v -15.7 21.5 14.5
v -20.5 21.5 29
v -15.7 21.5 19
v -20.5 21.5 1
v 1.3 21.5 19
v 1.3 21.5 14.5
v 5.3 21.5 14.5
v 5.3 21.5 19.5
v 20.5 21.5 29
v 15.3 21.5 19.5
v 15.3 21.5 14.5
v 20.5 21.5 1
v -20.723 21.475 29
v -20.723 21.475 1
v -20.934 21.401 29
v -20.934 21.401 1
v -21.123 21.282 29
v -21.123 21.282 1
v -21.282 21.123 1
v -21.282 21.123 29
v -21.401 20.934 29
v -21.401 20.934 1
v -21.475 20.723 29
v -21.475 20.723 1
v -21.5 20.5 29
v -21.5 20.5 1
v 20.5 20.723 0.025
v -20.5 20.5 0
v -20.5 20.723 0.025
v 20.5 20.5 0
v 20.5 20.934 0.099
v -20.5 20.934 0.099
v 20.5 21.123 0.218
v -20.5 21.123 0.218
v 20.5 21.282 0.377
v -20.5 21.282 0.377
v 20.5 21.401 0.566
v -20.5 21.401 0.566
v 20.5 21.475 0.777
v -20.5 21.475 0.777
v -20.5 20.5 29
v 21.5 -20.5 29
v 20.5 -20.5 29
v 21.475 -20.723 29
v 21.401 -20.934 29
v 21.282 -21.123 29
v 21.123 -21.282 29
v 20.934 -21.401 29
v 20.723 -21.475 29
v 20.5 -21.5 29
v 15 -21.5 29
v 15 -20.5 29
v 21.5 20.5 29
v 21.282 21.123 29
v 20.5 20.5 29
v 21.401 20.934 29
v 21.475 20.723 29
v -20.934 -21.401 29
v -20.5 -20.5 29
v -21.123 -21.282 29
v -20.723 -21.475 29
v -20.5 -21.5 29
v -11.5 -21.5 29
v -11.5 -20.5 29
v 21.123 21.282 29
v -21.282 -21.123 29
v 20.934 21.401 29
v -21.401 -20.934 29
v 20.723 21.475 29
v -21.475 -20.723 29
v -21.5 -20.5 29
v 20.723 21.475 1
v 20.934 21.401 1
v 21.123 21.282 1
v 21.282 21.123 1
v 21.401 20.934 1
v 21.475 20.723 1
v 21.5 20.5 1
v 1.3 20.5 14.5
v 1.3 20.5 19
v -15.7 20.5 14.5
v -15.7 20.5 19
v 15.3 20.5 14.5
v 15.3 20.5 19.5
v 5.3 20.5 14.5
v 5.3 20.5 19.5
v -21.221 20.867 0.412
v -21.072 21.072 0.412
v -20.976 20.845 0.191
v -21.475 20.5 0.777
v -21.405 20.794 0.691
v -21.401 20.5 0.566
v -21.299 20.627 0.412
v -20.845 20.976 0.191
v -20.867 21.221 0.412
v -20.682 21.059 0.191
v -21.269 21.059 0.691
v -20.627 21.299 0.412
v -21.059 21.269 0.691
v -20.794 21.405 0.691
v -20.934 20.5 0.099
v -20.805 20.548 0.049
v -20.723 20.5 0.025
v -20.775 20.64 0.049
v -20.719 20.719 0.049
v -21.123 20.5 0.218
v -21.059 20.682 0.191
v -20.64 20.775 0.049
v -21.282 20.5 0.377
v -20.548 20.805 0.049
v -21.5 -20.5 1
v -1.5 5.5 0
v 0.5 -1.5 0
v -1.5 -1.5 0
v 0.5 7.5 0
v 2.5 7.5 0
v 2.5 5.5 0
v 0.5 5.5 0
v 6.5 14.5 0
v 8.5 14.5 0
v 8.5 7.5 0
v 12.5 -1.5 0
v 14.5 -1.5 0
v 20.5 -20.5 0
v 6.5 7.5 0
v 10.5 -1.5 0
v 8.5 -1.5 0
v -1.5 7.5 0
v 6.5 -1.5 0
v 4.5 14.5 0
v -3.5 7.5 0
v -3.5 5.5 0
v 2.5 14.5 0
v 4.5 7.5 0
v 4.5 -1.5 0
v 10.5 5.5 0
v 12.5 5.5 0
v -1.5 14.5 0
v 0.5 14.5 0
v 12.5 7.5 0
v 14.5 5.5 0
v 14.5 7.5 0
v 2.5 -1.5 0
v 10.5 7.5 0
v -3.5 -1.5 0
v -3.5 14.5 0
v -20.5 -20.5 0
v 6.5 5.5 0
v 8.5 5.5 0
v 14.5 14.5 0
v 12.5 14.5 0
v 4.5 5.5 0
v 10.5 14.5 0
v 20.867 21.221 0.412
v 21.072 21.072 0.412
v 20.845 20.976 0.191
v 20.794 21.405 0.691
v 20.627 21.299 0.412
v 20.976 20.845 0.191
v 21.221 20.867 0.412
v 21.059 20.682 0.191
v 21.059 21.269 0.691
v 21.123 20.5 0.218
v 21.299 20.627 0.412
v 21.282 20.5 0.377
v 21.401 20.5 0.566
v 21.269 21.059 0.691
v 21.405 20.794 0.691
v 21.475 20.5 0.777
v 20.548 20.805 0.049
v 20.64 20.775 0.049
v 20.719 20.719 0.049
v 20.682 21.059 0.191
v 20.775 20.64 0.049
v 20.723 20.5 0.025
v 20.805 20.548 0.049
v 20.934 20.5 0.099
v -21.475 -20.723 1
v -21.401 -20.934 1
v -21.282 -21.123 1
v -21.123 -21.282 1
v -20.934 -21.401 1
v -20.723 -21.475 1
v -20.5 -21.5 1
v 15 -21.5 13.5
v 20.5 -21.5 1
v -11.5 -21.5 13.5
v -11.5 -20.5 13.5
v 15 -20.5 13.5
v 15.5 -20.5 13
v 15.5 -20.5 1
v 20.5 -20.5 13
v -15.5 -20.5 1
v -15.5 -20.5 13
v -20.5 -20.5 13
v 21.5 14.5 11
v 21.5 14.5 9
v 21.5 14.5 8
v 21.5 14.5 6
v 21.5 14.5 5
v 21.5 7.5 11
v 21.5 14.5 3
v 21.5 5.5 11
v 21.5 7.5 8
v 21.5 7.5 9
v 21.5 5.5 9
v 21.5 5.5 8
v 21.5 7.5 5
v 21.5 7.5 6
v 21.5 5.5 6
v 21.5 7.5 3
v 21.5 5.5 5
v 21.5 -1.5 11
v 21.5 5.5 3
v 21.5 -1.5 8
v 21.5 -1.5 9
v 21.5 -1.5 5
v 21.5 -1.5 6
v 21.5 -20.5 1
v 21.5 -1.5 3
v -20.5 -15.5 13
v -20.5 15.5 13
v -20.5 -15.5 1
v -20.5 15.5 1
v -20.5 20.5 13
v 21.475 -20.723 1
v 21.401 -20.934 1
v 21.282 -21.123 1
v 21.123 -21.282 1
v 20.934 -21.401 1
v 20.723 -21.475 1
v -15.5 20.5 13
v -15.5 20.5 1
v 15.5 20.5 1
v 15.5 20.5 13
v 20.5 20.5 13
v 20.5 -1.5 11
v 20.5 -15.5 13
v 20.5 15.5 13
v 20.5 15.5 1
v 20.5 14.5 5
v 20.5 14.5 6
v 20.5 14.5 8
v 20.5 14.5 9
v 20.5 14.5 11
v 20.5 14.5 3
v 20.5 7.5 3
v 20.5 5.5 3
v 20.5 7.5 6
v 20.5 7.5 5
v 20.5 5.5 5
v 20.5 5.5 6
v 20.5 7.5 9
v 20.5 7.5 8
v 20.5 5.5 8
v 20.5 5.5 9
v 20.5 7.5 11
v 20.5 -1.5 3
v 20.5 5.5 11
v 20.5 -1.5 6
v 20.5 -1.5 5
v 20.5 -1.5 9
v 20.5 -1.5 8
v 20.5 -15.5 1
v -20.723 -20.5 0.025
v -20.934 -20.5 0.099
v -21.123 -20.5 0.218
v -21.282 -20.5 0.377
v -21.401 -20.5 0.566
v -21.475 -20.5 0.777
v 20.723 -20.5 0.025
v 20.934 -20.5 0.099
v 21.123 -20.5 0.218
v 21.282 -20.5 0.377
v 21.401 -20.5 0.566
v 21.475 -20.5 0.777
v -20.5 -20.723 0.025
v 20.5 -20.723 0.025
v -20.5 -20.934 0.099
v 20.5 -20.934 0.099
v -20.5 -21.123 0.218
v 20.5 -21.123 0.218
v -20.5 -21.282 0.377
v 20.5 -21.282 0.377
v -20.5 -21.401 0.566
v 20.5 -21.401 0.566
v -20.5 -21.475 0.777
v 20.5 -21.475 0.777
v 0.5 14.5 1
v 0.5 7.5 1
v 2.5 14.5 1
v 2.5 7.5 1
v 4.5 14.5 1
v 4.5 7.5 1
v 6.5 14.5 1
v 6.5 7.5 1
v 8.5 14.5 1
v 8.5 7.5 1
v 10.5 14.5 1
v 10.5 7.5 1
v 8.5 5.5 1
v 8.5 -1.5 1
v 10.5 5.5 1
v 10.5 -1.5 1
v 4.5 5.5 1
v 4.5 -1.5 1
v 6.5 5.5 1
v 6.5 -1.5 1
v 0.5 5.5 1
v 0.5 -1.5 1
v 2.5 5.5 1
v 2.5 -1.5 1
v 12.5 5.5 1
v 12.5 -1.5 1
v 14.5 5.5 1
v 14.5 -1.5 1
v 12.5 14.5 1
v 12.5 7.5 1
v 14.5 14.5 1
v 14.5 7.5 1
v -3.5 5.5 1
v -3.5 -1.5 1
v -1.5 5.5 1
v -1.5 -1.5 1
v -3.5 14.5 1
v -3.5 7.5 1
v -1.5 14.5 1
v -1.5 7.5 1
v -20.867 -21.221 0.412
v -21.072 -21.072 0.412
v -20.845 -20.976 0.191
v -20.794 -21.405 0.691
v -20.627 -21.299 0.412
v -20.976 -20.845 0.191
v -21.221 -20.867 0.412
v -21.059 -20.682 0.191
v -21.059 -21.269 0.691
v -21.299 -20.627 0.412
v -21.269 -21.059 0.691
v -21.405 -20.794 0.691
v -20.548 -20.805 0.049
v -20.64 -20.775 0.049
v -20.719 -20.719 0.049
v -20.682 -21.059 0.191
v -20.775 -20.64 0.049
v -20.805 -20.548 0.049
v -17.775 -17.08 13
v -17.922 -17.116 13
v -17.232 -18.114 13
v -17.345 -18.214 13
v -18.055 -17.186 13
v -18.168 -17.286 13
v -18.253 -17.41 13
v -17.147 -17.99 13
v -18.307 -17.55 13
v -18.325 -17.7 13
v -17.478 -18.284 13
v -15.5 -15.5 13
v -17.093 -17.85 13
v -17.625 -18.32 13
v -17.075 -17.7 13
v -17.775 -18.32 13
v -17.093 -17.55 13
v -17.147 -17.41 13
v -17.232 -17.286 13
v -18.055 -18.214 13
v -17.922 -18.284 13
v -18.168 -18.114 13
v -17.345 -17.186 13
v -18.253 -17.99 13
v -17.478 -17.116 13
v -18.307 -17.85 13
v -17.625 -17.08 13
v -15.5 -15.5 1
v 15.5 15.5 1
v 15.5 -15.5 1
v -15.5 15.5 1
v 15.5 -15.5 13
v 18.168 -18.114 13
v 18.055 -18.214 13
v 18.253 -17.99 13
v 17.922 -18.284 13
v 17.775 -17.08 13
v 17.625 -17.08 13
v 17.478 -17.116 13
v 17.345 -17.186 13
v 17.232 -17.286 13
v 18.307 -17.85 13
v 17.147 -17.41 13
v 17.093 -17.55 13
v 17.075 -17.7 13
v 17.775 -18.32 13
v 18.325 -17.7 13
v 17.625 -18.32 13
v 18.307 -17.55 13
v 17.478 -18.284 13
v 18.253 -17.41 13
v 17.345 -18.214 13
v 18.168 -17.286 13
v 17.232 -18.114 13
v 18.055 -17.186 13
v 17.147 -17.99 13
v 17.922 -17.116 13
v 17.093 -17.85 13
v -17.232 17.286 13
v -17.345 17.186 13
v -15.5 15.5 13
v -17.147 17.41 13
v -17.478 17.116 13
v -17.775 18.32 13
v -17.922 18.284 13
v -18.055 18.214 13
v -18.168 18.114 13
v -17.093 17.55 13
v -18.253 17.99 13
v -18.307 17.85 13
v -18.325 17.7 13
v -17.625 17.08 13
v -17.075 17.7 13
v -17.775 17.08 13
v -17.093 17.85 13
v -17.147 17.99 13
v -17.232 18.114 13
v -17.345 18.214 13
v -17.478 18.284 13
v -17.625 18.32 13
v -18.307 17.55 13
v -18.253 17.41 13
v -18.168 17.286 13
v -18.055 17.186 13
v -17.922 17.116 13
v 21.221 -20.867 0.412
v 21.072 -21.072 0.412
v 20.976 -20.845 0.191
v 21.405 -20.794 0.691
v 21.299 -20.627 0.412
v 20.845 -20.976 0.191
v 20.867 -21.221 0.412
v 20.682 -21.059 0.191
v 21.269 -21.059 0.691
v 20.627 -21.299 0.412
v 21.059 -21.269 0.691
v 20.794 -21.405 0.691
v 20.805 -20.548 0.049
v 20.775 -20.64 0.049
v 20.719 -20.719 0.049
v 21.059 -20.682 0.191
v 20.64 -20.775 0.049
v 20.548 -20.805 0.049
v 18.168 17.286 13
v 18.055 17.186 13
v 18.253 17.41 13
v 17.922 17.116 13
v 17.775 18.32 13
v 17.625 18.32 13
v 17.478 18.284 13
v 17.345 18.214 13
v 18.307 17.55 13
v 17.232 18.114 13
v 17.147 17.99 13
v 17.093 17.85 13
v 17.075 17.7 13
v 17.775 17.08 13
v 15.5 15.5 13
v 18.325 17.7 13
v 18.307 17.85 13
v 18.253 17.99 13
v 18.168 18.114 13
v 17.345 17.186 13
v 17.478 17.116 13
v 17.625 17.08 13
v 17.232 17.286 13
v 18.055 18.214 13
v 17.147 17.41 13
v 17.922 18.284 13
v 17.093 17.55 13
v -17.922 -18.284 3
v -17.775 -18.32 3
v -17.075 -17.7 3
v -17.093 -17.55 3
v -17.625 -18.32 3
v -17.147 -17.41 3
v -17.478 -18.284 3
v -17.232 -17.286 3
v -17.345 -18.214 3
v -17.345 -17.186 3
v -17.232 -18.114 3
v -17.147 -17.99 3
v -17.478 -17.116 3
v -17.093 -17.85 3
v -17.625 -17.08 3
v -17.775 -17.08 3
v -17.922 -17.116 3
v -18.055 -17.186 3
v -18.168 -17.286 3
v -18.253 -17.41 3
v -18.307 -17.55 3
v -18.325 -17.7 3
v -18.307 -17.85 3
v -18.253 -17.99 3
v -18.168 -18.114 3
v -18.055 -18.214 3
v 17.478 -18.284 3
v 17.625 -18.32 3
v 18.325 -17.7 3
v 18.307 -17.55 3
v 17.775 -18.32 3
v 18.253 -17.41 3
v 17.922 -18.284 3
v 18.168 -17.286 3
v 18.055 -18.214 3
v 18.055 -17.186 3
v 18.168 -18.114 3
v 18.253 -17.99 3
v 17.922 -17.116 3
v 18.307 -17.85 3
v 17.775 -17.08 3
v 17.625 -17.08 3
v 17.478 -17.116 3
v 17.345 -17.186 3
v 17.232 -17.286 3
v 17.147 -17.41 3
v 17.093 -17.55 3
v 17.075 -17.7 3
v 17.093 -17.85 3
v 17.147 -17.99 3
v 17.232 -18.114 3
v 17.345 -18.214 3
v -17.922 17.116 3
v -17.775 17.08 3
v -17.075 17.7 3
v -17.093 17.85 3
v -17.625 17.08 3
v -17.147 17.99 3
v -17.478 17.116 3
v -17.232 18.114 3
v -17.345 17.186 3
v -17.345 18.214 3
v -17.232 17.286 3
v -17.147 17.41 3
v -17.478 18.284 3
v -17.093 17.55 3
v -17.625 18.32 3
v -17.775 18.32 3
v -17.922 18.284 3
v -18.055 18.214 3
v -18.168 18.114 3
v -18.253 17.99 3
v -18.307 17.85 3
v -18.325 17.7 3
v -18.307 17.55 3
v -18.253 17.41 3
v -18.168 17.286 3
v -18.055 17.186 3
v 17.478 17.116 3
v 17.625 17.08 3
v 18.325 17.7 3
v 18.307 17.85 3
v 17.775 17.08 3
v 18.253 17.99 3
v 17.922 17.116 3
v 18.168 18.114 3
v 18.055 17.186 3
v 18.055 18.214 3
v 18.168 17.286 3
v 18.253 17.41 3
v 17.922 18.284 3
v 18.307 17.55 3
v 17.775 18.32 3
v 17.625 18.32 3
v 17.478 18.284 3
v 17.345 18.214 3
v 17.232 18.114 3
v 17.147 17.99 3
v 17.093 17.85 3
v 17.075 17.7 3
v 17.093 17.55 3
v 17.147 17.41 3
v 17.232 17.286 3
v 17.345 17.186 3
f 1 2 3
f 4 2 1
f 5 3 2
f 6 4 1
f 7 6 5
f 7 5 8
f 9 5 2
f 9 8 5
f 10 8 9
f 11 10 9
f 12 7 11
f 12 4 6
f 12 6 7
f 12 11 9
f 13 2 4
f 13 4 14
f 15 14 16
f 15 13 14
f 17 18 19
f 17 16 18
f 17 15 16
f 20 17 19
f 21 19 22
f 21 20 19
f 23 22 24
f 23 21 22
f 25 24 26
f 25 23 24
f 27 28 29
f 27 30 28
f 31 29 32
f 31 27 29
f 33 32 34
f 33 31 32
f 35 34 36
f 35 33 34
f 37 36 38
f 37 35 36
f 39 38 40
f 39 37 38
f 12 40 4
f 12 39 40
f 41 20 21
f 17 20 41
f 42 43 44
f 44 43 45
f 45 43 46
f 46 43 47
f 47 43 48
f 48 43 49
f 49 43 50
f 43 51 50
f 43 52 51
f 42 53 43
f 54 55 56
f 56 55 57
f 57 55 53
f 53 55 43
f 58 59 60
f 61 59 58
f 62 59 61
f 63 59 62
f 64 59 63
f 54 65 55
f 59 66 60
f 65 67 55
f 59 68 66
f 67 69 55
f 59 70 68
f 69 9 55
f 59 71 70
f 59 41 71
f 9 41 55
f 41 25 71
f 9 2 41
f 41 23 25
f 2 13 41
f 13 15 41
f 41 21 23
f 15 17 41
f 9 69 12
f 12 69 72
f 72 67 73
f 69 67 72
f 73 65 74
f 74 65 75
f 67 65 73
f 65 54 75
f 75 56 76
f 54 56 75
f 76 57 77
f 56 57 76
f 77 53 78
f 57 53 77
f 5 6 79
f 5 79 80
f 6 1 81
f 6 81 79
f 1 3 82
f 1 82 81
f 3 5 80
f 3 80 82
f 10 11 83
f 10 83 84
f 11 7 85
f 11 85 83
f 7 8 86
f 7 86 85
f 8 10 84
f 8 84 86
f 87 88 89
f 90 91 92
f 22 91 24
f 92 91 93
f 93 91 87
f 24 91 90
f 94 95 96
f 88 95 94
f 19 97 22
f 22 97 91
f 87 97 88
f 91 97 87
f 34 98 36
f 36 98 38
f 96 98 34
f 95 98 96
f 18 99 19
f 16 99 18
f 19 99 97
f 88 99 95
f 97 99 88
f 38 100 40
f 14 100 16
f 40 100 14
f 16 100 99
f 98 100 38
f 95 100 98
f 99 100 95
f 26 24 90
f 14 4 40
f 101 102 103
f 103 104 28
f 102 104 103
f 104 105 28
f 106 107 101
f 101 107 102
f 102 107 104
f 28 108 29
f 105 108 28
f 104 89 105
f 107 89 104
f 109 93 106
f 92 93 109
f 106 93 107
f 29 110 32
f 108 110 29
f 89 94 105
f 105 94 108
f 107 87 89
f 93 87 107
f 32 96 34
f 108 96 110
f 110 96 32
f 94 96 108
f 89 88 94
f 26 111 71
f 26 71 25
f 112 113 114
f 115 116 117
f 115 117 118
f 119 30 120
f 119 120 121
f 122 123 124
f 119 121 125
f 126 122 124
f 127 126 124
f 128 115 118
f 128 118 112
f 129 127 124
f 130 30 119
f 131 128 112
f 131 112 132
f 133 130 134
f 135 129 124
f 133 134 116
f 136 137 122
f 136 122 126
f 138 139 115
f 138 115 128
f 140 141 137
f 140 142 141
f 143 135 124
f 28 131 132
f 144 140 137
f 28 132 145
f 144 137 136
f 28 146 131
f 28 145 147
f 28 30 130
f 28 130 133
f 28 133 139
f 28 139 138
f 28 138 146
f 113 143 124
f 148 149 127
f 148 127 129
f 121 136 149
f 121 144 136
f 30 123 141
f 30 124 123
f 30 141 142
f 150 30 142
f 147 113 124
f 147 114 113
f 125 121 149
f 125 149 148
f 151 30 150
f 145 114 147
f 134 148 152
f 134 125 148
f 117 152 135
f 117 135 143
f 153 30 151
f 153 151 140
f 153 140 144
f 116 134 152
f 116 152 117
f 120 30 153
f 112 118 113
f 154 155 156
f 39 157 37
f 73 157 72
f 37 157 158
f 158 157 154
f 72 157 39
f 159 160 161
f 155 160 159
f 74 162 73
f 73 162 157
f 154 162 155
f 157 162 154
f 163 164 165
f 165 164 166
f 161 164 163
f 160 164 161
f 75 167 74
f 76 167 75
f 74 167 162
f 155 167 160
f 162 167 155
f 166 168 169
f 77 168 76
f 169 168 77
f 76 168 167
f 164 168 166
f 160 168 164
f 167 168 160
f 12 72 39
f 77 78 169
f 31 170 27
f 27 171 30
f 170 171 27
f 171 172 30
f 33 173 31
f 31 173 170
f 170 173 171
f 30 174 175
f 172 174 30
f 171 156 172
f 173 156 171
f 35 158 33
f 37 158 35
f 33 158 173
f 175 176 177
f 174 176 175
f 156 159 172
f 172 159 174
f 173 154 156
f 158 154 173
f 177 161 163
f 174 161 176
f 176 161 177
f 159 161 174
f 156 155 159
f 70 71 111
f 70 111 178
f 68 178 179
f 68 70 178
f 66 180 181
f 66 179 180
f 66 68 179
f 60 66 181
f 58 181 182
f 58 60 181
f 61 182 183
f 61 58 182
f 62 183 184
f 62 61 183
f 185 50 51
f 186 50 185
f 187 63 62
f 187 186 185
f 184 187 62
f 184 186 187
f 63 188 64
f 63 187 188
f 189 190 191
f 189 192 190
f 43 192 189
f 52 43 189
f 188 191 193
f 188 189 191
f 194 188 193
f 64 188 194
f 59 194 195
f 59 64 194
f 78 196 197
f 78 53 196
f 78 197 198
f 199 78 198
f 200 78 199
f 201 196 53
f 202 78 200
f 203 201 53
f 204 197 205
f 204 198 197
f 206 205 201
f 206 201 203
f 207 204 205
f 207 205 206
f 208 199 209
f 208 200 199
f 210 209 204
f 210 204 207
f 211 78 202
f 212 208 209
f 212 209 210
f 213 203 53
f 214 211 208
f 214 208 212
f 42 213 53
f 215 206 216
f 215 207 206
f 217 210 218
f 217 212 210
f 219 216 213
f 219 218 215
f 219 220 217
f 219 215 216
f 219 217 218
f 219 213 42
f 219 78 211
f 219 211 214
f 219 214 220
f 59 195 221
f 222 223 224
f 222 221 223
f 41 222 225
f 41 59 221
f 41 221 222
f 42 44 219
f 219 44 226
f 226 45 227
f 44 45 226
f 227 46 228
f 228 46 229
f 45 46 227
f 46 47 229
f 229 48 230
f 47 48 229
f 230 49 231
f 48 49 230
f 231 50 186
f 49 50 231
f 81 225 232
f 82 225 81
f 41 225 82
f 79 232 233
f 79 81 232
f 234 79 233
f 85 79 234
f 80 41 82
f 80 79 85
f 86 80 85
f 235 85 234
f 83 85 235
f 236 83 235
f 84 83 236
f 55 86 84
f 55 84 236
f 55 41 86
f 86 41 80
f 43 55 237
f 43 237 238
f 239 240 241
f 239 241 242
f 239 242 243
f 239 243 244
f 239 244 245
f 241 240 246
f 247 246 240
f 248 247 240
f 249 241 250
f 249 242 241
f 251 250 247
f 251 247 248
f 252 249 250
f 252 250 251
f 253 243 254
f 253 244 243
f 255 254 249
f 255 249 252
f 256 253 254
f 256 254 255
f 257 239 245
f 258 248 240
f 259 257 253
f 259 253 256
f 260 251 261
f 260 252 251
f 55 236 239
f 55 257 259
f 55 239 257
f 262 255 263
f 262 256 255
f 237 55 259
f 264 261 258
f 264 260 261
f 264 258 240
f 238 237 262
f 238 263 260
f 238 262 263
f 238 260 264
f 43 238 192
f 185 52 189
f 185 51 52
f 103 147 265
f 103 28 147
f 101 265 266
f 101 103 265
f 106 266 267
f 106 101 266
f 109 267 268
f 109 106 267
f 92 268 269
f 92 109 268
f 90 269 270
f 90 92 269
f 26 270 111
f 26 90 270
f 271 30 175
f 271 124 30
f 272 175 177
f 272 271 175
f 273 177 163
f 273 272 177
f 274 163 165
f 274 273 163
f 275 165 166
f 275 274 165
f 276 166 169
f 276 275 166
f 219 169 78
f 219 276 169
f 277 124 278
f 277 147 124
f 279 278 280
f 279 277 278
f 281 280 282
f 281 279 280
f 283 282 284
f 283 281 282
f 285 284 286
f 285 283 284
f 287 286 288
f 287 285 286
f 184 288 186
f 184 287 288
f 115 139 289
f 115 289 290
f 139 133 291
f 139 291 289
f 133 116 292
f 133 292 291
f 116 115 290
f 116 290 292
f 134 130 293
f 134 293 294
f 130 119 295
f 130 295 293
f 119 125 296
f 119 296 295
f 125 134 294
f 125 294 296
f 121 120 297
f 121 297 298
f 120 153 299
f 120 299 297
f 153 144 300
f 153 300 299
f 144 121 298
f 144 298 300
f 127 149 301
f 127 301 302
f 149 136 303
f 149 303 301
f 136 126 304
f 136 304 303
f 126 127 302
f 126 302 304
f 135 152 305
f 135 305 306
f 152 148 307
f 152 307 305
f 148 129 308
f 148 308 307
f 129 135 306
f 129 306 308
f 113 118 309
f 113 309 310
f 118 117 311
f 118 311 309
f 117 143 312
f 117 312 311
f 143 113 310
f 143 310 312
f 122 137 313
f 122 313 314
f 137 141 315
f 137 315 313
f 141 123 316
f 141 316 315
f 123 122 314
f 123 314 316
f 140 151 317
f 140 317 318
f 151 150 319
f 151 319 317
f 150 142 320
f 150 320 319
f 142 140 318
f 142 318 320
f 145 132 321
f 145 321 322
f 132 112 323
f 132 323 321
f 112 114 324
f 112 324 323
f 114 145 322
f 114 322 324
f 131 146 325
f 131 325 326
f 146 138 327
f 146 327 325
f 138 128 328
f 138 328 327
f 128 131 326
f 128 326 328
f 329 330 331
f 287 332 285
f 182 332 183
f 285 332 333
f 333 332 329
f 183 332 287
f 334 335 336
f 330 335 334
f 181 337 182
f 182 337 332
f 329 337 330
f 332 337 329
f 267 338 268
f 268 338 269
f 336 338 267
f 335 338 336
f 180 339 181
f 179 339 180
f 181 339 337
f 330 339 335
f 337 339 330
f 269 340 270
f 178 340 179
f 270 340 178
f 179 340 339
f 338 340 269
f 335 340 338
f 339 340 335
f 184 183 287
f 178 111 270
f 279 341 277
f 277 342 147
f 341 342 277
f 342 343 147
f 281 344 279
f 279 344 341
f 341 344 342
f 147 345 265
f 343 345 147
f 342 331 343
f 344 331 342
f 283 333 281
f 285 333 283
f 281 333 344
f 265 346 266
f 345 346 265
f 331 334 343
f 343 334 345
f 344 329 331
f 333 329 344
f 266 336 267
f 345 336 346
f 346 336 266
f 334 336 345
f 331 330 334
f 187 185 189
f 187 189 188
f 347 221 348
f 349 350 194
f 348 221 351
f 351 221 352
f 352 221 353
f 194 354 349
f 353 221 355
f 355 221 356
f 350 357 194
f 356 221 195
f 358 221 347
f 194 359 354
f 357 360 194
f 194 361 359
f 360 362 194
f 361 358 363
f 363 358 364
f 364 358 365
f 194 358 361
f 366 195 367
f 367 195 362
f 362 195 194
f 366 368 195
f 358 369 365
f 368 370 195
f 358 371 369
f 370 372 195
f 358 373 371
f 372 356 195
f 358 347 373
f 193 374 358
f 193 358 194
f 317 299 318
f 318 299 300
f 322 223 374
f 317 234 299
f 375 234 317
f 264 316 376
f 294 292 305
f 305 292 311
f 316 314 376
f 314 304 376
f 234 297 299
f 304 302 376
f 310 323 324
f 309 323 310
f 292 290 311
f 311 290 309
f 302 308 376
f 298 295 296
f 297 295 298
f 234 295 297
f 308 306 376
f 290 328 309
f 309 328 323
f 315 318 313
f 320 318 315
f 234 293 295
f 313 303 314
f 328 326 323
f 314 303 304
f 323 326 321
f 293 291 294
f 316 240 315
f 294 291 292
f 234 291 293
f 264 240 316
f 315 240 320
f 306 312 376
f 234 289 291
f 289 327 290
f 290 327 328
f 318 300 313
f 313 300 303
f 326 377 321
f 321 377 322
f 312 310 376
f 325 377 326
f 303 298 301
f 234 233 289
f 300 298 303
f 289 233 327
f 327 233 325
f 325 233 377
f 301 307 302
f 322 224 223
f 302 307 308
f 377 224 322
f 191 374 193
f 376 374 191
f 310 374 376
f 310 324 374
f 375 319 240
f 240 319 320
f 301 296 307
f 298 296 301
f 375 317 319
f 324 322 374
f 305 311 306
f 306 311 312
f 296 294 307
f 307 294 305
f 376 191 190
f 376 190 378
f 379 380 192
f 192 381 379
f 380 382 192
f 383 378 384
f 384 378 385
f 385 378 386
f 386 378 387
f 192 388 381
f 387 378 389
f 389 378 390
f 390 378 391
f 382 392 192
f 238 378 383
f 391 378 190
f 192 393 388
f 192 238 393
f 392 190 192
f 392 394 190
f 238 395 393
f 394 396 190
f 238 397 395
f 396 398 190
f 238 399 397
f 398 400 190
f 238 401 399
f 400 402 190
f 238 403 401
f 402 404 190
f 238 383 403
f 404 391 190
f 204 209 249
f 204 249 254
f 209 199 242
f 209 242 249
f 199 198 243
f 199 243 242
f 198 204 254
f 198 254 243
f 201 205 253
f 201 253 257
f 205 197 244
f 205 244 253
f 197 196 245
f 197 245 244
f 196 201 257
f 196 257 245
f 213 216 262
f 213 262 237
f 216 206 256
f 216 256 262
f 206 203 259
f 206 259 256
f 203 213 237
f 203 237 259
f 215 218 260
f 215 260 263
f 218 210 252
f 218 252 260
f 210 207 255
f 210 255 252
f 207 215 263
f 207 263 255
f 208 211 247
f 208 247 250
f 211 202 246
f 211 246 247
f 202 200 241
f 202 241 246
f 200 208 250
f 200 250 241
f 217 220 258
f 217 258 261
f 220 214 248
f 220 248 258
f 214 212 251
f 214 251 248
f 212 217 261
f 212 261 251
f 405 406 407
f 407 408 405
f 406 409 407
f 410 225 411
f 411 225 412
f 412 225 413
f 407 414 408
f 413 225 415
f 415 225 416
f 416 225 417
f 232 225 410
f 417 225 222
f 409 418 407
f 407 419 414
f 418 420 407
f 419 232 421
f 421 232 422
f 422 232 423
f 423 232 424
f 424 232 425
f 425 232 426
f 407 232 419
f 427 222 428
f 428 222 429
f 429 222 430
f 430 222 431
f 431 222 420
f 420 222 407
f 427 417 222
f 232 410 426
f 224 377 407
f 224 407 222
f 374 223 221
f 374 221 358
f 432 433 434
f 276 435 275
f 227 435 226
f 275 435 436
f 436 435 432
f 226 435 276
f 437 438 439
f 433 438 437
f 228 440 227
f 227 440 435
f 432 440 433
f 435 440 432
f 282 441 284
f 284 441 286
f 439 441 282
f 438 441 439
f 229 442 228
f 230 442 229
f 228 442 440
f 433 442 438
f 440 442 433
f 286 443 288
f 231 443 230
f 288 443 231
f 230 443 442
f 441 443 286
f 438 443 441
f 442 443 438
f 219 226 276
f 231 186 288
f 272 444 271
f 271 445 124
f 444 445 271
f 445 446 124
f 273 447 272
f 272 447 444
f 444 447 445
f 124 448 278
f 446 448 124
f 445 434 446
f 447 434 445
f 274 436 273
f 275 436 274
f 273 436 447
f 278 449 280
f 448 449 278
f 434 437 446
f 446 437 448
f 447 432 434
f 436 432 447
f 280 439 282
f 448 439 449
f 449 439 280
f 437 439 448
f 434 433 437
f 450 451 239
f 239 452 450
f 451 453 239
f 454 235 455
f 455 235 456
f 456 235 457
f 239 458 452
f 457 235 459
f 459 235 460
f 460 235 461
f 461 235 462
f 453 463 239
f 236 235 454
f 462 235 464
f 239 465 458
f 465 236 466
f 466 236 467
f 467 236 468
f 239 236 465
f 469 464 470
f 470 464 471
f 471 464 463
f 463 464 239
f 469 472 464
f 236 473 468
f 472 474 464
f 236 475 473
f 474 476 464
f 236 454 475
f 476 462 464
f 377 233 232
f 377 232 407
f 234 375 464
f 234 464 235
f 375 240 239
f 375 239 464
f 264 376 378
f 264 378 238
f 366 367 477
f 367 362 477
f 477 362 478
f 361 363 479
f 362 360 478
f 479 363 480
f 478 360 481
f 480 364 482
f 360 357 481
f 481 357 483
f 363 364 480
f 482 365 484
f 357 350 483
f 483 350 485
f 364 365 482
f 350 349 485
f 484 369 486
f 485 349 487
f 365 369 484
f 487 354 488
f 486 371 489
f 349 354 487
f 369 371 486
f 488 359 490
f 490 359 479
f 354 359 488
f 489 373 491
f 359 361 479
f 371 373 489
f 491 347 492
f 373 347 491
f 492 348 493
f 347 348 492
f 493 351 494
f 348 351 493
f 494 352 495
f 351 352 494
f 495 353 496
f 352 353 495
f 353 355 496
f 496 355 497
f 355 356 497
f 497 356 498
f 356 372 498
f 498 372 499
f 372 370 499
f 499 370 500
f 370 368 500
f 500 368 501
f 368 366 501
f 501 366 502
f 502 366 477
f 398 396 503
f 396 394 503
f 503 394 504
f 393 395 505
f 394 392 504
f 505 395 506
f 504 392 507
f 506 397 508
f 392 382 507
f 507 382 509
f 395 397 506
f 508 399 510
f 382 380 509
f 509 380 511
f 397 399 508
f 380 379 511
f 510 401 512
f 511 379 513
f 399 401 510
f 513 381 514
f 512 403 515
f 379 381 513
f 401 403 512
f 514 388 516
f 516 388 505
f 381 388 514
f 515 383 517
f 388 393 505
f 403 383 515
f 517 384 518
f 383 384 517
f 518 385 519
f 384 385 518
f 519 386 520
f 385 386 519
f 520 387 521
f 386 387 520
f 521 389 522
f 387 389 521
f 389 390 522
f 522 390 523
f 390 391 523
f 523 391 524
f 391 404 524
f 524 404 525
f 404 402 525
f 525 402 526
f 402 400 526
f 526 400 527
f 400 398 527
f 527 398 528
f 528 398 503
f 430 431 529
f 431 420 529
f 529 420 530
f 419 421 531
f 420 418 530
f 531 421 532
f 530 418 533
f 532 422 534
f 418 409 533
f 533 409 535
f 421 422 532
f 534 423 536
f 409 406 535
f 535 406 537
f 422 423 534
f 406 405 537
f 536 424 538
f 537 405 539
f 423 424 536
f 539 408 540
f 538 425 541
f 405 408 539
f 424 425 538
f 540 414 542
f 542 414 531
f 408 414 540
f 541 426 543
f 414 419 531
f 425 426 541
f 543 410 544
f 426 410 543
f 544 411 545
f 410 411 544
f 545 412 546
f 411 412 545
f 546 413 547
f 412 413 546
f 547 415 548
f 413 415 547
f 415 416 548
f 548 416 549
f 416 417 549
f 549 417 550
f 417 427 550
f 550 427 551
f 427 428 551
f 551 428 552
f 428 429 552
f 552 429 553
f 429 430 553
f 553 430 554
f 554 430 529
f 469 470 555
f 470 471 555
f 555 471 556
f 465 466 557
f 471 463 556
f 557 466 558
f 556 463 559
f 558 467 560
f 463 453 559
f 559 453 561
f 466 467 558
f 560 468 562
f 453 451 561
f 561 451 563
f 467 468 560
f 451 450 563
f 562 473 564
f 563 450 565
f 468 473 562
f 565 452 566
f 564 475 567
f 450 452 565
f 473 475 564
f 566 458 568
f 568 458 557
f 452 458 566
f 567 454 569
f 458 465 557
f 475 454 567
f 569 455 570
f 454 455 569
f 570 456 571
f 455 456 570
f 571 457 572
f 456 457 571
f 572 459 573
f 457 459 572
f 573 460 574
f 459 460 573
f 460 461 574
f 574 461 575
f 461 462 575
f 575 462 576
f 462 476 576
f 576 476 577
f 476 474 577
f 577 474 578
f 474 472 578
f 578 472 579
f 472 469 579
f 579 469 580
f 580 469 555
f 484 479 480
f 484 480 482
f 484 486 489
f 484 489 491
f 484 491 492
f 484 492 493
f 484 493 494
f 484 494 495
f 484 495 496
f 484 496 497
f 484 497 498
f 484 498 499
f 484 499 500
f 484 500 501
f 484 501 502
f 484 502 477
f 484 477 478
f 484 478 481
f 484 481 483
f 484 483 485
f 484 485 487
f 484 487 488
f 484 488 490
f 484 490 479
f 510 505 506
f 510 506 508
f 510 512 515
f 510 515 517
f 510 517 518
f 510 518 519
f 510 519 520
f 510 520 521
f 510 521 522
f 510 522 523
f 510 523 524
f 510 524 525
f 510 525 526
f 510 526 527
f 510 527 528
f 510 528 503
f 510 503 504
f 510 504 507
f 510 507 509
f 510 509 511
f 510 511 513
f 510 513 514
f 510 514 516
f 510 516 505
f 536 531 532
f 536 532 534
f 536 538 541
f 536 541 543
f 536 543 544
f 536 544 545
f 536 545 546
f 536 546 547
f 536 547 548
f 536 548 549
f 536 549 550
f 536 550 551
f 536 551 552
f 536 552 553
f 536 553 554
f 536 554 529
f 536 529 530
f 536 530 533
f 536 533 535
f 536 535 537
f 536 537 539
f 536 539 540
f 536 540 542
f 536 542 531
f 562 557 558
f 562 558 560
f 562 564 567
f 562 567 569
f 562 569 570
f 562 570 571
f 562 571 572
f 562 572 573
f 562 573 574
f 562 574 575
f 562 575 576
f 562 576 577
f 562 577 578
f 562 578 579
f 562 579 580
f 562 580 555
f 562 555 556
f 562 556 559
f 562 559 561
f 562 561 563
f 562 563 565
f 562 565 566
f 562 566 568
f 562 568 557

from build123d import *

# Parameters (mm, degrees)
SKETCH_W        = 43
SKETCH_H        = 43
PAD_DEPTH       = 29
SKETCH001_W     = 41
SKETCH001_H     = 41
POCKET_DEPTH    = 28
SKETCH002_W     = 5
SKETCH002_H     = 5
PAD001_DEPTH    = 12
SKETCH003_R     = 0.625
POCKET001_DEPTH = 10
SKETCH004_W     = 26.5
SKETCH004_H     = 16
POCKET002_DEPTH = 1
SKETCH005_W     = 10
SKETCH005_H     = 5
SKETCH005_W_2   = 17
SKETCH005_H_2   = 4.5
POCKET003_DEPTH = 1
SKETCH006_W     = 2
SKETCH006_H     = 7
POCKET004_DEPTH = 1
FILLET_R        = 1
FILLET001_R     = 1
SKETCH007_W     = 7
SKETCH007_H     = 2
POCKET005_DEPTH = 1


with BuildPart() as part:
    # Sketch → Pad (new body)
    with BuildSketch(Plane.XY):
        Rectangle(SKETCH_W, SKETCH_H)
    extrude(amount=PAD_DEPTH)

    # Sketch001 (on Face6 of Pad) → Pocket (cut)
    with BuildSketch(Plane.XY.offset(29)):
        Rectangle(SKETCH001_W, SKETCH001_H)
    extrude(amount=-POCKET_DEPTH, mode=Mode.SUBTRACT)

    # Sketch002 (on Face11 of Pocket) → Pad001 (join)
    with BuildSketch(Plane.XY.offset(1)):
        with Locations((-18, 18)):
            Rectangle(SKETCH002_W, SKETCH002_H)
        with Locations((18, 18)):
            Rectangle(SKETCH002_W, SKETCH002_H)
        with Locations((-18, -18)):
            Rectangle(SKETCH002_W, SKETCH002_H)
        with Locations((18, -18)):
            Rectangle(SKETCH002_W, SKETCH002_H)
    extrude(amount=PAD001_DEPTH)

    # Sketch003 (on DatumPlane) → Pocket001 (cut)
    with BuildSketch(Plane.XY.offset(13)):
        with Locations((-17.7, 17.7)):
            Circle(SKETCH003_R)
        with Locations((17.7, 17.7)):
            Circle(SKETCH003_R)
        with Locations((-17.7, -17.7)):
            Circle(SKETCH003_R)
        with Locations((17.7, -17.7)):
            Circle(SKETCH003_R)
    extrude(amount=-POCKET001_DEPTH, mode=Mode.SUBTRACT)

    # Sketch004 (on Face6 of Pocket001) → Pocket002 (cut)
    with BuildSketch(Plane.XZ.offset(21.5)):
        with Locations((1.75, 21.5)):
            Rectangle(SKETCH004_W, SKETCH004_H)
    extrude(amount=-POCKET002_DEPTH, mode=Mode.SUBTRACT)

    # Sketch005 (on Face1 of Pocket002) → Pocket003 (cut)
    with BuildSketch(Plane(origin=(0, 21.5, 0), x_dir=(-1, 0, 0), z_dir=(0, 1, 0))):
        with Locations((-10.3, 17)):
            Rectangle(SKETCH005_W, SKETCH005_H)
        with Locations((7.2, 16.75)):
            Rectangle(SKETCH005_W_2, SKETCH005_H_2)
    extrude(amount=-POCKET003_DEPTH, mode=Mode.SUBTRACT)

    # Sketch006 (on Face3 of Pocket003) → Pocket004 (cut)
    with BuildSketch(Plane(origin=(0, 0, 0), x_dir=(1, 0, 0), z_dir=(0, 0, -1))):
        with Locations((13.5, -11)):
            Rectangle(SKETCH006_W, SKETCH006_H)
        with Locations((13.5, -2)):
            Rectangle(SKETCH006_W, SKETCH006_H)
        with Locations((9.5, -11)):
            Rectangle(SKETCH006_W, SKETCH006_H)
        with Locations((9.5, -2)):
            Rectangle(SKETCH006_W, SKETCH006_H)
        with Locations((5.5, -2)):
            Rectangle(SKETCH006_W, SKETCH006_H)
        with Locations((5.5, -11)):
            Rectangle(SKETCH006_W, SKETCH006_H)
        with Locations((1.5, -2)):
            Rectangle(SKETCH006_W, SKETCH006_H)
        with Locations((1.5, -11)):
            Rectangle(SKETCH006_W, SKETCH006_H)
        with Locations((-2.5, -2)):
            Rectangle(SKETCH006_W, SKETCH006_H)
        with Locations((-2.5, -11)):
            Rectangle(SKETCH006_W, SKETCH006_H)
    extrude(amount=-POCKET004_DEPTH, mode=Mode.SUBTRACT)

    # Fillet
    fillet_edges = [part.edges().sort_by_distance(p)[0] for p in [
        (-21.5, -21.5, 14.5),
        (21.5, -21.5, 14.5),
        (21.5, 21.5, 14.5),
        (-21.5, 21.5, 14.5),
    ]]
    fillet(fillet_edges, radius=FILLET_R)

    # Fillet001
    fillet001_edges = [part.edges().sort_by_distance(p)[0] for p in [
        (21.5, 0, 0),
        (0, -21.5, 0),
        (0, 21.5, 0),
        (-21.5, 0, 0),
    ]]
    fillet(fillet001_edges, radius=FILLET001_R)

    # Sketch007 (on Face22 of Fillet001) → Pocket005 (cut)
    with BuildSketch(Plane.YZ.offset(21.5)):
        with Locations((2, 10)):
            Rectangle(SKETCH007_W, SKETCH007_H)
        with Locations((11, 10)):
            Rectangle(SKETCH007_W, SKETCH007_H)
        with Locations((2, 7)):
            Rectangle(SKETCH007_W, SKETCH007_H)
        with Locations((11, 7)):
            Rectangle(SKETCH007_W, SKETCH007_H)
        with Locations((2, 4)):
            Rectangle(SKETCH007_W, SKETCH007_H)
        with Locations((11, 4)):
            Rectangle(SKETCH007_W, SKETCH007_H)
    extrude(amount=-POCKET005_DEPTH, mode=Mode.SUBTRACT)


solid = part.part
